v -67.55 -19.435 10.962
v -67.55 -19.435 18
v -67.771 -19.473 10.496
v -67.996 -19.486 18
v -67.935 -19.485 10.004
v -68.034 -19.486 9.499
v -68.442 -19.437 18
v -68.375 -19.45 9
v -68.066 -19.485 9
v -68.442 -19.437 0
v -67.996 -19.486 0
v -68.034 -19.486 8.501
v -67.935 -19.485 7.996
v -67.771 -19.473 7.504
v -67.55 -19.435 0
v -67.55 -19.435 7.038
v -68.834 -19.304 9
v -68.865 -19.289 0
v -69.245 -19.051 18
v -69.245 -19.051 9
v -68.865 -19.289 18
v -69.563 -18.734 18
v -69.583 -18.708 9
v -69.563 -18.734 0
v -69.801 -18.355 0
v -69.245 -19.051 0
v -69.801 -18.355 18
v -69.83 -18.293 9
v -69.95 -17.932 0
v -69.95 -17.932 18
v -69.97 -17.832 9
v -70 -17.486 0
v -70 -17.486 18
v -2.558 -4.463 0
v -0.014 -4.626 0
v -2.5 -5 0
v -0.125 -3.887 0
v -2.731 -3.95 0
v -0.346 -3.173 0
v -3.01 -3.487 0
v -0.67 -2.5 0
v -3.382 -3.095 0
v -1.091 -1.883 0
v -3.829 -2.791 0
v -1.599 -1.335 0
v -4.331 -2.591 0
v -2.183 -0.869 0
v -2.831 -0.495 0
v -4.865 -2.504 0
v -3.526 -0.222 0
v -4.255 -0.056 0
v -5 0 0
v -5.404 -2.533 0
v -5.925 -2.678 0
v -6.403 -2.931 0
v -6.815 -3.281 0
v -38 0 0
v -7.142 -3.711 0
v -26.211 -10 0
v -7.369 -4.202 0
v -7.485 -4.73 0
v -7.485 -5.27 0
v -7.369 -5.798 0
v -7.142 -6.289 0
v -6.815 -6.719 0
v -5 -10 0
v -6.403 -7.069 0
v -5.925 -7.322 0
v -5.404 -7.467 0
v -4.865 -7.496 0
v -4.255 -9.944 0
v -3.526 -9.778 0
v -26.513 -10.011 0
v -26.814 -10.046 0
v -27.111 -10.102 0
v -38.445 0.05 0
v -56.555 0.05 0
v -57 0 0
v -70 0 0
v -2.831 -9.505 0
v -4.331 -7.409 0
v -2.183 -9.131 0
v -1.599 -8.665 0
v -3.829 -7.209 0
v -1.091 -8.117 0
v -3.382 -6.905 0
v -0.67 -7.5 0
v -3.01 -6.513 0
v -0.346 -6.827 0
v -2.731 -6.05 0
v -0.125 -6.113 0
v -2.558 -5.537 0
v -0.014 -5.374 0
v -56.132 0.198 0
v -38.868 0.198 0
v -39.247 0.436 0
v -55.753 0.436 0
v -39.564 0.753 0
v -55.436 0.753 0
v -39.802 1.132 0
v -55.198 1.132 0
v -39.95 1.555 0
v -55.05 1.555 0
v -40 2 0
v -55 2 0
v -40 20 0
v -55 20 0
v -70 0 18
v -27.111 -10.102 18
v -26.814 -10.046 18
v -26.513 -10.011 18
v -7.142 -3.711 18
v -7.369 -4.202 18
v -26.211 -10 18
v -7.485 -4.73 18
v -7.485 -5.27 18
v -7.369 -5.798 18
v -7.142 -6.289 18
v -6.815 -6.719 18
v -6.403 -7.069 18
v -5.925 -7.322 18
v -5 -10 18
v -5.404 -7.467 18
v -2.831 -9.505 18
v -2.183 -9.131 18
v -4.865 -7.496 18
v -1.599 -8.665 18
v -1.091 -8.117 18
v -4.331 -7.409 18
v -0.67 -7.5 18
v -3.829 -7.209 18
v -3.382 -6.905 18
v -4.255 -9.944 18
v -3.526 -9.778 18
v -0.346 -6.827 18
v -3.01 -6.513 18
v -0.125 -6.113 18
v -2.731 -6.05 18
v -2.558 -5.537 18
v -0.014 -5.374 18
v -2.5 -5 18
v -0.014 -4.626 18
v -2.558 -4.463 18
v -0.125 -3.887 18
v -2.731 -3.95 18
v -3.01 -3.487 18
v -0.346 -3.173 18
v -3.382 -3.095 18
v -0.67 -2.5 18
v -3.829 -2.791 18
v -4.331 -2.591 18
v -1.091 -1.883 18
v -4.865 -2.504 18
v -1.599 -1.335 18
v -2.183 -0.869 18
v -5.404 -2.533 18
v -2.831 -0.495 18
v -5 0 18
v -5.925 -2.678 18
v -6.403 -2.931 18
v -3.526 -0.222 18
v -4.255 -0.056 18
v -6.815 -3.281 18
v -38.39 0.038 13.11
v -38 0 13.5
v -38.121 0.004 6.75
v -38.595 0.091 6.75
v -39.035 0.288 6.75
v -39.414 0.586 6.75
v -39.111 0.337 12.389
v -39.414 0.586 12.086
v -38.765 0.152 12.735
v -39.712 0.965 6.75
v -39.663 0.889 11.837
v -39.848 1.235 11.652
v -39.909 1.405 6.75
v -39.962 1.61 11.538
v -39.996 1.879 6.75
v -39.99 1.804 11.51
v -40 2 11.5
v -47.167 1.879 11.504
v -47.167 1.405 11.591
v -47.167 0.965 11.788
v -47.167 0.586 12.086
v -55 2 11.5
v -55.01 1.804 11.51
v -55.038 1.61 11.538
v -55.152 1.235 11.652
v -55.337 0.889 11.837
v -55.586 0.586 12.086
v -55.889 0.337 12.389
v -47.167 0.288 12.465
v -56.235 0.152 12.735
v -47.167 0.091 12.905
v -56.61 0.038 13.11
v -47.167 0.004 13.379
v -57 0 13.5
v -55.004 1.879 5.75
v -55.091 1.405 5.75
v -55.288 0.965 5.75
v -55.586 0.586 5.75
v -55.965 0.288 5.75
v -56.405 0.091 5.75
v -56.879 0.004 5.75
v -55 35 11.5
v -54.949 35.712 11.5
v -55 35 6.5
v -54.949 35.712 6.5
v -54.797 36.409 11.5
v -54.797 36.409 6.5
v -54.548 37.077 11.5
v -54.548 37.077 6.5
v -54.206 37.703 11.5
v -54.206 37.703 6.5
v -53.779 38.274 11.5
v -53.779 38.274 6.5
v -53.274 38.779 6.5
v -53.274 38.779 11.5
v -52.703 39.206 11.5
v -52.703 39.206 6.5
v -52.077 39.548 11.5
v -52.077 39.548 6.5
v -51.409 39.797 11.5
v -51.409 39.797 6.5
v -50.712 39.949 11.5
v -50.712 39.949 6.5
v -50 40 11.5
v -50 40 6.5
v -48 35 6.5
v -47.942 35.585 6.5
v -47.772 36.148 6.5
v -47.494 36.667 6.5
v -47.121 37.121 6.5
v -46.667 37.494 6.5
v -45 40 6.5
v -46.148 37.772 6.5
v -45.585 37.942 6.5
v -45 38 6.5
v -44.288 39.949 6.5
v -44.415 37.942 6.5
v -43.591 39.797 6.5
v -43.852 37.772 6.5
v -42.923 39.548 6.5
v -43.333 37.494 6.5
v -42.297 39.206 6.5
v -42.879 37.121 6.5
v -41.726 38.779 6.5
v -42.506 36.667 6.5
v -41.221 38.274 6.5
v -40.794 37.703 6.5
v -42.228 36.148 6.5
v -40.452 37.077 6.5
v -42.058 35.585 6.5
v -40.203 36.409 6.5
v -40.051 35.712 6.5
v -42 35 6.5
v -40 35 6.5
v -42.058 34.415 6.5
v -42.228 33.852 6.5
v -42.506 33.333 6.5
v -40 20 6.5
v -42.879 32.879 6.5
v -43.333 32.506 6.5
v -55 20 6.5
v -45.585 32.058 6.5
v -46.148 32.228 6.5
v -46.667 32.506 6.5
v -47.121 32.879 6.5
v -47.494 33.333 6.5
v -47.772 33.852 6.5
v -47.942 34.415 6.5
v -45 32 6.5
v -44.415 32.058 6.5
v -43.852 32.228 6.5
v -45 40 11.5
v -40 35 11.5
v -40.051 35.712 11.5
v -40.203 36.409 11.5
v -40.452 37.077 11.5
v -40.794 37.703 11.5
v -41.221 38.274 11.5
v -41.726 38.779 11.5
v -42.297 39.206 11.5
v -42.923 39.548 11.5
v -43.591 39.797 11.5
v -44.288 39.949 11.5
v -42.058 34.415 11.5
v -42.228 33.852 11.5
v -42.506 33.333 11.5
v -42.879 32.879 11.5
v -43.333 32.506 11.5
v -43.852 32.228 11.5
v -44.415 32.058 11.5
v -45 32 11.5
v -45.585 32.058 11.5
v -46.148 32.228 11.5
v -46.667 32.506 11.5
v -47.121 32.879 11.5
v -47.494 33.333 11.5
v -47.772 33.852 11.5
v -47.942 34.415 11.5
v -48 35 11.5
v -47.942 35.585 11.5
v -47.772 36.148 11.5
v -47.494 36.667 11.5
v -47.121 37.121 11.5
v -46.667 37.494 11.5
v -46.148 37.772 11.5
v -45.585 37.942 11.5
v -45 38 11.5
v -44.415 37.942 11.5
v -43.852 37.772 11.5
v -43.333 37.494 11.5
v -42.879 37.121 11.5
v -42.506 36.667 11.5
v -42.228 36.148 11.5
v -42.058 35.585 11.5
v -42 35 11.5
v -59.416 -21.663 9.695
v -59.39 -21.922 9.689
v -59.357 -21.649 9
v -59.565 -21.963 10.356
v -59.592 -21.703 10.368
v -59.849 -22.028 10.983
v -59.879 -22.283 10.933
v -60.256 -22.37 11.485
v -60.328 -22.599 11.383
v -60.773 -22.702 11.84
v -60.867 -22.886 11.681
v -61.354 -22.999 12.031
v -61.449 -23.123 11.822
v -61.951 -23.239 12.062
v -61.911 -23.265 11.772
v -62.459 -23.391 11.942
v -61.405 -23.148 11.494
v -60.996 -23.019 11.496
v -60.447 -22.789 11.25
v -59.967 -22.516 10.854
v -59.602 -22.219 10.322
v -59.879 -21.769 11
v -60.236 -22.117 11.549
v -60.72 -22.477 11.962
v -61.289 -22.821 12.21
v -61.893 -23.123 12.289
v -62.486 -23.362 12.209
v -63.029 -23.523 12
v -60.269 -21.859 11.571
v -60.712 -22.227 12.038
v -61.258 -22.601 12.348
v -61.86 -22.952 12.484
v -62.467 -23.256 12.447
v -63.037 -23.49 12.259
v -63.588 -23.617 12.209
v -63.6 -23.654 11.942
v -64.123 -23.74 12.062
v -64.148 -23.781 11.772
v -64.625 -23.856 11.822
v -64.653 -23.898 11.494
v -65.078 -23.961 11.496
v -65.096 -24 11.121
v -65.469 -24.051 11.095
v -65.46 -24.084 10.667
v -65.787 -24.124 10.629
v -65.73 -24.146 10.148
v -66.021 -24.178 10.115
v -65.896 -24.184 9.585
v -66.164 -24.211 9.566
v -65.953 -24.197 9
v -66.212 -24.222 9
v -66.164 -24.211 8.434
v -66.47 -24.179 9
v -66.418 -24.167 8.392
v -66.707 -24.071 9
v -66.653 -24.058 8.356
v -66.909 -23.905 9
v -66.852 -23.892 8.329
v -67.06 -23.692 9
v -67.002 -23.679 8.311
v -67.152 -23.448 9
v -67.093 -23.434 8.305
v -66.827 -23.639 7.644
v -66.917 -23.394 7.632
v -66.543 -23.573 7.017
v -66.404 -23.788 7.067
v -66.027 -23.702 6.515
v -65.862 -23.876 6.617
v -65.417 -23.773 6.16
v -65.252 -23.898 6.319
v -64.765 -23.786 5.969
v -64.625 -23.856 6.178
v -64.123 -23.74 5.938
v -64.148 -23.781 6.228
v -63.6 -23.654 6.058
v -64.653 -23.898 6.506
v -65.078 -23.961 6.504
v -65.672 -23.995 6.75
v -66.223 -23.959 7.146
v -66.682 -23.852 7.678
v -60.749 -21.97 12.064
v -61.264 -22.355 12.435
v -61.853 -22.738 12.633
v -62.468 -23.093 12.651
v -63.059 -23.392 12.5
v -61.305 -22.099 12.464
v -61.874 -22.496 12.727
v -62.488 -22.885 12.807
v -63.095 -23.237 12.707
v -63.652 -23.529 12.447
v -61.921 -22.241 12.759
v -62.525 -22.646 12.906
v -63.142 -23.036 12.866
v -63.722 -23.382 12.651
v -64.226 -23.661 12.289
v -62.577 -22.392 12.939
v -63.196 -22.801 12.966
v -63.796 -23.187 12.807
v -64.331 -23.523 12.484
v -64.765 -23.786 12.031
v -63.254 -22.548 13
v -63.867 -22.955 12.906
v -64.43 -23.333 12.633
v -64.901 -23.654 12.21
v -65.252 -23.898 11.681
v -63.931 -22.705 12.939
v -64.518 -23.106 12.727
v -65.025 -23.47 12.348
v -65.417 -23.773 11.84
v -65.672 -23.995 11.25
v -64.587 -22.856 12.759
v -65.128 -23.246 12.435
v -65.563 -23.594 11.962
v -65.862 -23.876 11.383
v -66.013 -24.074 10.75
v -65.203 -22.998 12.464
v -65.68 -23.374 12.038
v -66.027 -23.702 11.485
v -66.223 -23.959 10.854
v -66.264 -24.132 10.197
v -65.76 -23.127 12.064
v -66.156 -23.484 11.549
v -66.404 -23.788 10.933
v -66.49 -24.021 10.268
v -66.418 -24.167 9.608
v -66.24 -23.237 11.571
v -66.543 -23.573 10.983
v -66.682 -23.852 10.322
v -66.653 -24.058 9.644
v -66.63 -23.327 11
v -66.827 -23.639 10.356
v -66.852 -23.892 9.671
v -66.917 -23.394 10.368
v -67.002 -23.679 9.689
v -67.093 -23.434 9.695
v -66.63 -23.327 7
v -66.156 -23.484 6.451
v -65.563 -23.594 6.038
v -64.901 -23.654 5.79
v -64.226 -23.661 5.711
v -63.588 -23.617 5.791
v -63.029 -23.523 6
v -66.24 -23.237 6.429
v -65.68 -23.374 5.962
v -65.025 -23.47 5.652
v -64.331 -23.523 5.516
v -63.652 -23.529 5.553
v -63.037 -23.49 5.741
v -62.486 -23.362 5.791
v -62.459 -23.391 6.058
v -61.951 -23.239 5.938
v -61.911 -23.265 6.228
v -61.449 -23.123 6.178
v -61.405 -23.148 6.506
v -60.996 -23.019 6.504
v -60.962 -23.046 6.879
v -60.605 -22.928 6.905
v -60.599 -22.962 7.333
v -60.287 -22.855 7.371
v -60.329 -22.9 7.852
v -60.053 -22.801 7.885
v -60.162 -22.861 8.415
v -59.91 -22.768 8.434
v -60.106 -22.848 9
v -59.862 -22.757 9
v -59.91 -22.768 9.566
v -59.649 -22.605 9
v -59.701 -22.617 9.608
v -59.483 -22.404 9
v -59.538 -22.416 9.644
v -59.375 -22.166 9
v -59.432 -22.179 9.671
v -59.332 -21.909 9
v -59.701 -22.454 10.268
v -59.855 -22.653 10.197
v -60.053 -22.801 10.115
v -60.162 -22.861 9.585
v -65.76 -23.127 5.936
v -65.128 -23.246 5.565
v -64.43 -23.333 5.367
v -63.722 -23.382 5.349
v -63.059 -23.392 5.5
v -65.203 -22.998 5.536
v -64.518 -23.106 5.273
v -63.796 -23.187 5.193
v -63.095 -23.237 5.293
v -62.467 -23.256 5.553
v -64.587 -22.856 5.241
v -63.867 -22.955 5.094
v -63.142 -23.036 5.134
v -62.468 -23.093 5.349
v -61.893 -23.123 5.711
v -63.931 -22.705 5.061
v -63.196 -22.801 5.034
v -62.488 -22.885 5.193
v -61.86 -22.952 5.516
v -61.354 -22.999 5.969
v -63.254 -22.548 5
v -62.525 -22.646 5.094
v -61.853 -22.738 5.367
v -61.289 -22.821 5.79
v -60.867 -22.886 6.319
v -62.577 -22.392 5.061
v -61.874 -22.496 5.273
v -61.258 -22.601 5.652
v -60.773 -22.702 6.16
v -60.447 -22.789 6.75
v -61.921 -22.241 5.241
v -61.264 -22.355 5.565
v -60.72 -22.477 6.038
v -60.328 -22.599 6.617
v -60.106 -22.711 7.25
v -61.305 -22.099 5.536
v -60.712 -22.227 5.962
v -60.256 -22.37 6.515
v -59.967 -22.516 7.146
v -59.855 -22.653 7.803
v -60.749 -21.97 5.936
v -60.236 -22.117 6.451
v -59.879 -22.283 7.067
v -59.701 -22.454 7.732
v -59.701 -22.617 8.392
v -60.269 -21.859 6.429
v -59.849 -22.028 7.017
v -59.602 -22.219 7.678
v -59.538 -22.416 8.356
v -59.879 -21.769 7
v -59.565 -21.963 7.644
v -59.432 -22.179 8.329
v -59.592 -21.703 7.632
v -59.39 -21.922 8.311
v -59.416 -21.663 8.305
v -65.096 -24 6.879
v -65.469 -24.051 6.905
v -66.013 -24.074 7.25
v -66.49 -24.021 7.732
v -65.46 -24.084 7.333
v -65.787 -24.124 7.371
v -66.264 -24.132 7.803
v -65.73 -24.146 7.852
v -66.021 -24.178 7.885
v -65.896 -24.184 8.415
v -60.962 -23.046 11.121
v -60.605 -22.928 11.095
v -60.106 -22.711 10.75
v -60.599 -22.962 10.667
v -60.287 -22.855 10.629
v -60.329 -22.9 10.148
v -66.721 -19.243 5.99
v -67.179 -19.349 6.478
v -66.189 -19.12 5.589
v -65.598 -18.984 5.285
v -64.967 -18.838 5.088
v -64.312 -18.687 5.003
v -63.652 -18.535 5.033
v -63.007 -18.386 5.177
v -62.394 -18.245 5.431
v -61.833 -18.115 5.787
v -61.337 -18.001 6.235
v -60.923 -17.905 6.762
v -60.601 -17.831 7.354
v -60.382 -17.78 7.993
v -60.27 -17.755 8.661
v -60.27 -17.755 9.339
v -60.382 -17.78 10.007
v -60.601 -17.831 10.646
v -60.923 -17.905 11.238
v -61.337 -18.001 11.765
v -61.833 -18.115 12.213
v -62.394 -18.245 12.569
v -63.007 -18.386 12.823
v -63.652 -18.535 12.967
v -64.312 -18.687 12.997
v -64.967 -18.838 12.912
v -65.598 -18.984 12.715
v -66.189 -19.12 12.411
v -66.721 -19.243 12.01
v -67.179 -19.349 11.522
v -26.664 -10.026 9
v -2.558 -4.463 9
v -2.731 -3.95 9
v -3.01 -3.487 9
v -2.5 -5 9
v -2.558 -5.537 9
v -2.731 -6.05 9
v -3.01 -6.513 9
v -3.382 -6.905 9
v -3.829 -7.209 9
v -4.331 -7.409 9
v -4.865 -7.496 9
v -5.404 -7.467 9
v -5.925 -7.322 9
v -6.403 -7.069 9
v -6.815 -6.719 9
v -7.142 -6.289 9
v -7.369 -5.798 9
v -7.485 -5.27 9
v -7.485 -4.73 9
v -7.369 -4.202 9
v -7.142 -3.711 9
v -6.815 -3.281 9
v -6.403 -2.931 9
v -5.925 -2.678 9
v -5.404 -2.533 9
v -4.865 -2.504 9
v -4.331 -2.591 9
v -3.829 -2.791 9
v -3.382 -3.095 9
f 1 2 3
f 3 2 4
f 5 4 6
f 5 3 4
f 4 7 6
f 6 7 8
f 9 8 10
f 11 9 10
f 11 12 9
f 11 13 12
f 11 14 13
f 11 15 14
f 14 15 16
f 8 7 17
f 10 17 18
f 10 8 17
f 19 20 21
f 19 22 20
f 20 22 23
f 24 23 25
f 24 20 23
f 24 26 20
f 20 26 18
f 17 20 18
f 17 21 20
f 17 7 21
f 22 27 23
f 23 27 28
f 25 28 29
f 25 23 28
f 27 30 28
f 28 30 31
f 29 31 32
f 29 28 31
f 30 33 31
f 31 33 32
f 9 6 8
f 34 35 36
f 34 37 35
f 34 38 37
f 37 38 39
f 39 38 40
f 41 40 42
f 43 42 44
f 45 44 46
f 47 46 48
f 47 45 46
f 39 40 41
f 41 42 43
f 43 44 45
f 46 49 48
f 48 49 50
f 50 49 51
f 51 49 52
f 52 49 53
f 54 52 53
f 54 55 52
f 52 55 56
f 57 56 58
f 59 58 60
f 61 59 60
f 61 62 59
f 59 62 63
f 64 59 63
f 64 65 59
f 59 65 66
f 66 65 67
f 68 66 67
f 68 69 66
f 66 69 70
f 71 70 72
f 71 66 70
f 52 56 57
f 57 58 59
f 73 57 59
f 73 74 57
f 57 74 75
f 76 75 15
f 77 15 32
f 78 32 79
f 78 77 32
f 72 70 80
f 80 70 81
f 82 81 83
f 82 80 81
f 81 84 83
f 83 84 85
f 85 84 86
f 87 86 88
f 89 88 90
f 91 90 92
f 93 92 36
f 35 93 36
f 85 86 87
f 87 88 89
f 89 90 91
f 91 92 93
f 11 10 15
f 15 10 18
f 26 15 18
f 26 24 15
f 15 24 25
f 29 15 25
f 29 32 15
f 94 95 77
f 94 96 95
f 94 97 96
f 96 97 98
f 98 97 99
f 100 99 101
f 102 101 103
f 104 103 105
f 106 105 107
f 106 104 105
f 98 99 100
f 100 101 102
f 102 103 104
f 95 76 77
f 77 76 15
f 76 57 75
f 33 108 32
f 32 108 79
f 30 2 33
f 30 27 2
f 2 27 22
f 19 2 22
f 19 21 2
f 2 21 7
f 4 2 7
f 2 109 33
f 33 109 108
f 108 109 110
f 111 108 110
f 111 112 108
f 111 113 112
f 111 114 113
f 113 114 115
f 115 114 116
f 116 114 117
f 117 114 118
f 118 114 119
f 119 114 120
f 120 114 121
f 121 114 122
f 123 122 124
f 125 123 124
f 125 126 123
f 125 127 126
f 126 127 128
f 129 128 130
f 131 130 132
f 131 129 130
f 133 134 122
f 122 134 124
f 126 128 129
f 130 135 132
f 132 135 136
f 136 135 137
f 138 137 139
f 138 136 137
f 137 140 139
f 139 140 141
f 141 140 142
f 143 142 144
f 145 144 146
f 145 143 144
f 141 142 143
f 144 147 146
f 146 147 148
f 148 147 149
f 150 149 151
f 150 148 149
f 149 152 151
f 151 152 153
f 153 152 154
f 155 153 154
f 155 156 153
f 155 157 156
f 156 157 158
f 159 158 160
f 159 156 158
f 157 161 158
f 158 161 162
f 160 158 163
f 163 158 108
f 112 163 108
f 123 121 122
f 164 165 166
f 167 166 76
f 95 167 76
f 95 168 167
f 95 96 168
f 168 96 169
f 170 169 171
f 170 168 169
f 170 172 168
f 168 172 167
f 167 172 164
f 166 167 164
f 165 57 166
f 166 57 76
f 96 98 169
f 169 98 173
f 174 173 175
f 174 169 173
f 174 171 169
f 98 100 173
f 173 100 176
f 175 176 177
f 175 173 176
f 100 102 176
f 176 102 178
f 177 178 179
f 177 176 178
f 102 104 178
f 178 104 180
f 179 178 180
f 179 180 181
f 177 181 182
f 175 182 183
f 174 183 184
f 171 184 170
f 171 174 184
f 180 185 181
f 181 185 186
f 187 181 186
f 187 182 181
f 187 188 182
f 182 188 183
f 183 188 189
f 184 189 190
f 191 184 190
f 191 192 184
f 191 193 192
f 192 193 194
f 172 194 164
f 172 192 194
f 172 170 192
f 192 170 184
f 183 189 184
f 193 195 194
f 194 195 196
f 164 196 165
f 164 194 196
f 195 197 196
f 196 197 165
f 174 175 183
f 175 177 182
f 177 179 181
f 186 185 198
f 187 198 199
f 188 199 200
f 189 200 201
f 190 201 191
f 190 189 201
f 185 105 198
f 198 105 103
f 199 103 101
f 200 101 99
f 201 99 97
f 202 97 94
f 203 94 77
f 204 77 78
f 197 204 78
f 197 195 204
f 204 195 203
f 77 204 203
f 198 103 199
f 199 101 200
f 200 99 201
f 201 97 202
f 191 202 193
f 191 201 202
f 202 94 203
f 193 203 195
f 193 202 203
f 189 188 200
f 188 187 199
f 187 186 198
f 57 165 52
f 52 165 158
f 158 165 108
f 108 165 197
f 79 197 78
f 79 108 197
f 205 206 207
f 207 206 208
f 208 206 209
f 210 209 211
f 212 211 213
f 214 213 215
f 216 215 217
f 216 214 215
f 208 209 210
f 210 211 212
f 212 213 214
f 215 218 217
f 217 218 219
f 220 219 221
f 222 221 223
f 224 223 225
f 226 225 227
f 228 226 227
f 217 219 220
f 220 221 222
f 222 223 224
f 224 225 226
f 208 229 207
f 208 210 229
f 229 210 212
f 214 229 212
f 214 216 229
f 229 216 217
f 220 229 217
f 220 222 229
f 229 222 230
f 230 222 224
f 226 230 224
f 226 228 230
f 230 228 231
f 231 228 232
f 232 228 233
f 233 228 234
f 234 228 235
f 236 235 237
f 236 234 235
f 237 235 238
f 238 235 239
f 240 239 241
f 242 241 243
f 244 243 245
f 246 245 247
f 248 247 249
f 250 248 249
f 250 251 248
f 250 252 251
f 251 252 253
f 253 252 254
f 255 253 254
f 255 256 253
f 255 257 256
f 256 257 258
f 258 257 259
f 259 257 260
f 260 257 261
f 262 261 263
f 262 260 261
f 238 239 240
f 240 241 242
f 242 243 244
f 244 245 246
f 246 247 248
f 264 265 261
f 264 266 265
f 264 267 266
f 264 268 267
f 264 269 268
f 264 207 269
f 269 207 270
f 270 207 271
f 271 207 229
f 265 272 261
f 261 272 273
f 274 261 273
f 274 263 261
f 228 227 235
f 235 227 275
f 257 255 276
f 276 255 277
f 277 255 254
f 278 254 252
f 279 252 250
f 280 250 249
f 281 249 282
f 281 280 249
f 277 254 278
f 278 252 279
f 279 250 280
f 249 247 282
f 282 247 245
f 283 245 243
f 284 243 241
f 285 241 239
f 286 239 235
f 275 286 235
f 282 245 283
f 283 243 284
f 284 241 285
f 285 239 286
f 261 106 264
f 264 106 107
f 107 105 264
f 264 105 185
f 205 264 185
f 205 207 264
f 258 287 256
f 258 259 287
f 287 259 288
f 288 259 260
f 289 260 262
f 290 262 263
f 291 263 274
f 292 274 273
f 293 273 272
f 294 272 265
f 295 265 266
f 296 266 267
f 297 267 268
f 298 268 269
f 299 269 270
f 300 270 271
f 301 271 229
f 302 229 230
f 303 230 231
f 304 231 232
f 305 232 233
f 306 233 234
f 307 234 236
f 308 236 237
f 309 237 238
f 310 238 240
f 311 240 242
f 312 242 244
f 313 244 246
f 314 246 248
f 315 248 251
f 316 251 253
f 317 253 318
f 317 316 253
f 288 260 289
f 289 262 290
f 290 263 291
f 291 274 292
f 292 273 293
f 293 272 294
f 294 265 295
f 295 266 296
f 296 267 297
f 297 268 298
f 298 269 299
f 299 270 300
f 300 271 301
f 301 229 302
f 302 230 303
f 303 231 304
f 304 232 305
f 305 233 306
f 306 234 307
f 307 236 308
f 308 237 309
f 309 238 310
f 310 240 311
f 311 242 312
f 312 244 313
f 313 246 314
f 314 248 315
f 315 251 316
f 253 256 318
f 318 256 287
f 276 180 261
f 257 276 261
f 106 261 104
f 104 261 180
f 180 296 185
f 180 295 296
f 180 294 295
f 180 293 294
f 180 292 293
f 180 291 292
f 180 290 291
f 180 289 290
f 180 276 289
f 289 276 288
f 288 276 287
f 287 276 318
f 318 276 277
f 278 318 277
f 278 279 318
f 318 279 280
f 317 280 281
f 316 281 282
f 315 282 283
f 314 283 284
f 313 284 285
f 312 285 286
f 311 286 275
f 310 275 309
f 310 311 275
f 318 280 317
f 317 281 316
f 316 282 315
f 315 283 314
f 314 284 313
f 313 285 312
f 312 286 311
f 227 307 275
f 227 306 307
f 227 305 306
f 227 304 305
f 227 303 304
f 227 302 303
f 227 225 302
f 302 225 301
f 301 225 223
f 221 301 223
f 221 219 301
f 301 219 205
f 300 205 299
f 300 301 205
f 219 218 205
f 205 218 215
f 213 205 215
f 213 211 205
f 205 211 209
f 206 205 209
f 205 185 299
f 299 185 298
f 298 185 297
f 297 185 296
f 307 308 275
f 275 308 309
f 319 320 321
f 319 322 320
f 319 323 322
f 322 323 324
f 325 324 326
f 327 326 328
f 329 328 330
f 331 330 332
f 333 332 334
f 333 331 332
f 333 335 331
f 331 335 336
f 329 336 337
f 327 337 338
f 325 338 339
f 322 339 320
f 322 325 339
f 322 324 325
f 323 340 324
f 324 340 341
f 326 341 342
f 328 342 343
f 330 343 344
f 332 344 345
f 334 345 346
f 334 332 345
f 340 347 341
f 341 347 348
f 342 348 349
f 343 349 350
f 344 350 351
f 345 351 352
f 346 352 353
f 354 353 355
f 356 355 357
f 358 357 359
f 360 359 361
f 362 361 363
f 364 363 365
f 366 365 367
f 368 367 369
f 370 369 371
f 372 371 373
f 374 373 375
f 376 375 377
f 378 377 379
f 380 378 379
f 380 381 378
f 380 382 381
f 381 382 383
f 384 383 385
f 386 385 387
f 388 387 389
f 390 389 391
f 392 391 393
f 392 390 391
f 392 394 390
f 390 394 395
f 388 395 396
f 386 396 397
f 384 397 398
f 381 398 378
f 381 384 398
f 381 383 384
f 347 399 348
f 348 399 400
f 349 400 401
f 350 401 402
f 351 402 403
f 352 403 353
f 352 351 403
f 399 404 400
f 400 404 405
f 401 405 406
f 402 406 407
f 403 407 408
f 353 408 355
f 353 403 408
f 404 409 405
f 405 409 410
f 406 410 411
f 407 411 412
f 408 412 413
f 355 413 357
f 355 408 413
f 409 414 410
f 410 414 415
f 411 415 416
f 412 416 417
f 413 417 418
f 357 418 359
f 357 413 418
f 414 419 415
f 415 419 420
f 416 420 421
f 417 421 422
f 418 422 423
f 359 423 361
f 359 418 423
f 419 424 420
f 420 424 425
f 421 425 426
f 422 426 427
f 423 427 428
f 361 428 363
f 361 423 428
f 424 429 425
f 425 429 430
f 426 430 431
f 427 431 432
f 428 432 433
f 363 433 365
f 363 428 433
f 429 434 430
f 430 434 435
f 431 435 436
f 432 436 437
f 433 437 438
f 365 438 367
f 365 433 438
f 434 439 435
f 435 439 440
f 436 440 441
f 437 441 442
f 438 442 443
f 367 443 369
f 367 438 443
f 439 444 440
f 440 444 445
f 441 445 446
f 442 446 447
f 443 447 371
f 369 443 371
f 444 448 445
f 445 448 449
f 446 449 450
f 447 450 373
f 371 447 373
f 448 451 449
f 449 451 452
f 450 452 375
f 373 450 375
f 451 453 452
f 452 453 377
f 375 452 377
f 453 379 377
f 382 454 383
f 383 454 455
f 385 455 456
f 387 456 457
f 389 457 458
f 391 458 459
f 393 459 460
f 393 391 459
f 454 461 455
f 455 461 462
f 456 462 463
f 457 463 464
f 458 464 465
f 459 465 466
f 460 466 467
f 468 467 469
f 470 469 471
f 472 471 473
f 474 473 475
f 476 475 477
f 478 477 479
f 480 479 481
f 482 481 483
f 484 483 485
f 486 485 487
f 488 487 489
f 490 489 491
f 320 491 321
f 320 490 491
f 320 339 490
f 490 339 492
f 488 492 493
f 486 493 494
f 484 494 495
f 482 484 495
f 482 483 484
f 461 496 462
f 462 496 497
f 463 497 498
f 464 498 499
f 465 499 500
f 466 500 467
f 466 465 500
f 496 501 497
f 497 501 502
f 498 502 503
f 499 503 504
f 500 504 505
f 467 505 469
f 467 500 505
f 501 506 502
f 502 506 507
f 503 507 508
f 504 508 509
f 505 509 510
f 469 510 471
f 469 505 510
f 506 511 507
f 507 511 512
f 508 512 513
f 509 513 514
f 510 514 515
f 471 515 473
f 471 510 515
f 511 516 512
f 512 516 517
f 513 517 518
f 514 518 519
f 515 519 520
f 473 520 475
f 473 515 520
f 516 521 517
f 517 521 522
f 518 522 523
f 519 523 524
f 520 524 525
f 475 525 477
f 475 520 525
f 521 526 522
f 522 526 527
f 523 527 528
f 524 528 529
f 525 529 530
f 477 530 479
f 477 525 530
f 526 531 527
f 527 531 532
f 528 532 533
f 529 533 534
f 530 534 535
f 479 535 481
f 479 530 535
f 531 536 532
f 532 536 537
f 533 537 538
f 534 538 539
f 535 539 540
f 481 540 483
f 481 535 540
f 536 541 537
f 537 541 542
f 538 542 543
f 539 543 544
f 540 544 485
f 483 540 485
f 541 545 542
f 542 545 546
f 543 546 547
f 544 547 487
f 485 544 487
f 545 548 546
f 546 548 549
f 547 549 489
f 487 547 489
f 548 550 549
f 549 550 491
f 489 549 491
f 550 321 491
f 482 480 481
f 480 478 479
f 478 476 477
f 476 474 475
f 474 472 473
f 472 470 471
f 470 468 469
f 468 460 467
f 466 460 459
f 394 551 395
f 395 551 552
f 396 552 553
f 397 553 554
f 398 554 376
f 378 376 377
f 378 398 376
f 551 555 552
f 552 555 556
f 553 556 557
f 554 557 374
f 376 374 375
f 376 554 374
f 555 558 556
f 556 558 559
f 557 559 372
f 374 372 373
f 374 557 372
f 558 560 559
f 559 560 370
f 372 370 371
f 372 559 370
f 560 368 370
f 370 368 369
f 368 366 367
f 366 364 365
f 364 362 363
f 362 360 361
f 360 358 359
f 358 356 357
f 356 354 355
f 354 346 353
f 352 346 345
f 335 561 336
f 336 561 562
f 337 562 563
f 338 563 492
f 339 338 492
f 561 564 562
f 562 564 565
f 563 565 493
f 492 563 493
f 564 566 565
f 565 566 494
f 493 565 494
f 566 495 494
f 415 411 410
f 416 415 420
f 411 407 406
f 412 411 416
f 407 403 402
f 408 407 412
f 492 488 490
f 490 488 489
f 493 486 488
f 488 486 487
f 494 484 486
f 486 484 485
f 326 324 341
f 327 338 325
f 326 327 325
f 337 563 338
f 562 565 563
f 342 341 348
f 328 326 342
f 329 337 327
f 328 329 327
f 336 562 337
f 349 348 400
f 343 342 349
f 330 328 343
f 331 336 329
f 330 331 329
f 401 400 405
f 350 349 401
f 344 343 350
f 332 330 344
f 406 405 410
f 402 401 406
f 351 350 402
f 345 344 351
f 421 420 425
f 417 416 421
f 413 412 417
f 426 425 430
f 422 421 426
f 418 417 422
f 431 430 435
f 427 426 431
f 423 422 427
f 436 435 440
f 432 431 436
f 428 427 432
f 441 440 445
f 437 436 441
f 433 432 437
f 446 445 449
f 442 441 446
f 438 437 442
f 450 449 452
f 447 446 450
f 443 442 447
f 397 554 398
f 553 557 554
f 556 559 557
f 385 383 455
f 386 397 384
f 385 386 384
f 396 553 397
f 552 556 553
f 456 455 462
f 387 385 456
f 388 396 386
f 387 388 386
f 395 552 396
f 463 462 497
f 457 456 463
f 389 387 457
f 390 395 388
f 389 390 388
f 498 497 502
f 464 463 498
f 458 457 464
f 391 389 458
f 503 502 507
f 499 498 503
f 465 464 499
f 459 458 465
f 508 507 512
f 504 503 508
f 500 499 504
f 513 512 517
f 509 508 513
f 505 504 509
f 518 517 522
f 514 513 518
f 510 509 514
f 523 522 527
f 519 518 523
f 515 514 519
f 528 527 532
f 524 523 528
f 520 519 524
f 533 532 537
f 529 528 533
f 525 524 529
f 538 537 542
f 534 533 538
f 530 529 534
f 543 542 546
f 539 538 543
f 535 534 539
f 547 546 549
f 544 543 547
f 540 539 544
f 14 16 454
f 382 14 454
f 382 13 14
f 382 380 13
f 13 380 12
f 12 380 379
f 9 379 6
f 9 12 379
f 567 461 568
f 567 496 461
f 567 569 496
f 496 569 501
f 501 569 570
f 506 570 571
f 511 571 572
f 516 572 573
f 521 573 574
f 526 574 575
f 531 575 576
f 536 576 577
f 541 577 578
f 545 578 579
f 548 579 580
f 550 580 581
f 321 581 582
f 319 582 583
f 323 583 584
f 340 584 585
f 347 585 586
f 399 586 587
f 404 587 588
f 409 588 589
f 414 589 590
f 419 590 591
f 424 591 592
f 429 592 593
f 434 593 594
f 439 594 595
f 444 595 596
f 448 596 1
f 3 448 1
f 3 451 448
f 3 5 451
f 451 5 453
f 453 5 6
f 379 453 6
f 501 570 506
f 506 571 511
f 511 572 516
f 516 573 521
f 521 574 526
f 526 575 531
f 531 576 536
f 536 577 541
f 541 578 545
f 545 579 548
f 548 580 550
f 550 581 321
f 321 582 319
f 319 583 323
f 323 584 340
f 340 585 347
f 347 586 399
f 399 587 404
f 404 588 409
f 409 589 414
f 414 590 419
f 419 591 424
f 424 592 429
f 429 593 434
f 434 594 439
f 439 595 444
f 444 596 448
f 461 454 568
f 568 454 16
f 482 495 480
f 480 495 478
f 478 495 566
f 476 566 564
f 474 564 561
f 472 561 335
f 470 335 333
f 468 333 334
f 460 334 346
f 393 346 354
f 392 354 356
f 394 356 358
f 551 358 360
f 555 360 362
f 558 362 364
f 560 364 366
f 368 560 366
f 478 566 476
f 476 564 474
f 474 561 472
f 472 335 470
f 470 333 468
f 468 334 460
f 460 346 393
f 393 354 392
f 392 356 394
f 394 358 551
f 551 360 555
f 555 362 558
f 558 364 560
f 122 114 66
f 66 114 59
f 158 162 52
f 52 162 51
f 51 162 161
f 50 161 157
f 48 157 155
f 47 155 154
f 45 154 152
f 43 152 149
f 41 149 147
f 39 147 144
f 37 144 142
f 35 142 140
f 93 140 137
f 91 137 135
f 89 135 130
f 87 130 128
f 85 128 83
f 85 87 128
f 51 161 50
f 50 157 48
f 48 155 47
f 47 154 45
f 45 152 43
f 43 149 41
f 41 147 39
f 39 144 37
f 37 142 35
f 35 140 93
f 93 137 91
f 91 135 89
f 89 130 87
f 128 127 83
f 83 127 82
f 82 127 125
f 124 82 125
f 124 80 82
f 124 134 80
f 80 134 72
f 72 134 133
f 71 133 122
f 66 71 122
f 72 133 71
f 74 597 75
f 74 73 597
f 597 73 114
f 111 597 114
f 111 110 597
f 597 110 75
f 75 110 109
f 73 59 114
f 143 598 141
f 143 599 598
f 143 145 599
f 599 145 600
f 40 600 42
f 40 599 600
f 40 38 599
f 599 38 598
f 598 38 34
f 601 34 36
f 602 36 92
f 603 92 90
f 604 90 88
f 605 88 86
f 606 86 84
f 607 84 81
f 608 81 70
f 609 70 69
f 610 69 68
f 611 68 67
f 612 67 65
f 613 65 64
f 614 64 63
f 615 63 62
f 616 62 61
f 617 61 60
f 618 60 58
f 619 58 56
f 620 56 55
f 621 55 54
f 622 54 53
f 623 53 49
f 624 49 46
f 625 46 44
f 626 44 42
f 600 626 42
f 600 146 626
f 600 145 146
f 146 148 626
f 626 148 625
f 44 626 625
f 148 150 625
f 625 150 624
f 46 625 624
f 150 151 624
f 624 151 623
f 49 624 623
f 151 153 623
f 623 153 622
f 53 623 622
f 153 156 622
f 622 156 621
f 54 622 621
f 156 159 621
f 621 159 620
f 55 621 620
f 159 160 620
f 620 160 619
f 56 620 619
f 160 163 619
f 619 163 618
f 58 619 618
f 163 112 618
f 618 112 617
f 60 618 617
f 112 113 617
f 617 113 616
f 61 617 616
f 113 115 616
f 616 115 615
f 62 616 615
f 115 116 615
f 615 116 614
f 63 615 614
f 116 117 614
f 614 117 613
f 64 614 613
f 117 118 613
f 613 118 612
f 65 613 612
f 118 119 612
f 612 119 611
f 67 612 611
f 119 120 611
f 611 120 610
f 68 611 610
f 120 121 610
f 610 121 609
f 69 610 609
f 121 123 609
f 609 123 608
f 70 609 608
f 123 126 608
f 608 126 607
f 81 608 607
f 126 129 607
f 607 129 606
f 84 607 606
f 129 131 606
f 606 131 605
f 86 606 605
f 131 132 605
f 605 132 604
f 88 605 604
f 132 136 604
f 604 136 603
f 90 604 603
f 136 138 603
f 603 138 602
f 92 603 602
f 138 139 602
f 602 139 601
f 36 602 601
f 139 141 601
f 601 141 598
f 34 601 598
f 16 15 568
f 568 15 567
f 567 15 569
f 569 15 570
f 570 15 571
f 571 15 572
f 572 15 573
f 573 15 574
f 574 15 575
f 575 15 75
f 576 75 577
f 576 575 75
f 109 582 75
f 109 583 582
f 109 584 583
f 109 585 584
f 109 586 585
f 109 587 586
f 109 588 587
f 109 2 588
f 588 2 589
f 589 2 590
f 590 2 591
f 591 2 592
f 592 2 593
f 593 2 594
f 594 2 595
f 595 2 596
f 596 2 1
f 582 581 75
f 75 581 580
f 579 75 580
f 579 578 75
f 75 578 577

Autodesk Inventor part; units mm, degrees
ref_plane "YZ Plane" through (0, 0, 0) normal (1, 0, 0) x (0, 1, 0)
ref_plane "XZ Plane" through (0, 0, 0) normal (0, 1, 0) x (-1, 0, 0)
ref_plane "XY Plane" through (0, 0, 0) normal (0, 0, 1) x (1, 0, 0)
sketch "Sketch1" plane through (0, 0, 0) normal (0, 0, 1) x (1, 0, 0)
  line L0 (0, 0) -> (-70, 0)
  line L1 (0, 0) -> (0, -10)
  line L2 (0, -10) -> (-26.6667, -10)
  line L3 (-26.6667, -10) -> (-70, -20)
  line L4 (-70, -20) -> (-70, 0)
  circle A0 centre (-5, -5) radius 2.5
  dimension "d0" = 70
  dimension "d1" = 5
  dimension "d2" = 10
  dimension "d3" = 5
  dimension "d4" = 5
  dimension "d5" = 20
extrude "Extrusion1" add sketch "Sketch1" along normal blind 18
fillet "Fillet4" radius 4 1 edges at (-26.6667, -10, 9)
fillet "Fillet5" radius 5 2 edges at (0, 0, 9) (0, -10, 9)
sketch "Sketch4" plane through (-70, -20, 0) normal (0.2249, -0.9744, 0) x (0.9744, 0.2249, 0)
  circle A0 centre (6, 9) radius 4
  line L0 (44.0167, 18) -> (44.0167, 0) projected
  line L1 (0, 18) -> (44.0167, 18) projected
  line L2 (0, 0) -> (0, 18) projected
  line L3 (0, 0) -> (44.0167, 0) projected
  point P0 (72.7046, 0)
  dimension "d24" = 8
  dimension "d25" = 6
  dimension "d26" = 9
extrude "Extrusion4" add sketch "Sketch4" along normal blind 5 contours A0
fillet "Fillet6" radius 1 1 edges at (-66.9269, -24.4222, 9)
sketch "Sketch5" plane through (-70, 0, 0) normal (0, 1, 0) x (1, 0, 0)
  line L0 (15, 0) -> (30, 0)
  line L1 (30, 0) -> (30, -11.5)
  line L2 (30, -11.5) -> (15, -11.5)
  line L3 (15, -11.5) -> (15, 0)
  line L4 (65, -18) -> (0, -18) projected
  line L5 (0, 0) -> (0, -18) projected
  line L6 (65, 0) -> (0, 0) projected
  point P0 (70, 0)
  point P1 (0, -3.5)
  dimension "d31" = 15
  dimension "d33" = 6.5
  dimension "d34" = 15
extrude "Extrusion5" add sketch "Sketch5" along normal blind 40
sketch "Sketch6" plane through (-40, 0, 11.5) normal (0, 0, 1) x (1, 0, 0)
  circle A0 centre (-5, 35) radius 3
  line L0 (-15, 40) -> (0, 40) projected
  line L1 (0, 0) -> (0, 40) projected
  point P0 (40, 0)
  dimension "d37" = 6
  dimension "d38" = 5
  dimension "d39" = 5
extrude "Extrusion6" cut sketch "Sketch6" against normal up to next
sketch "Sketch7" plane through (-55, 0, 0) normal (-1, 0, 0) x (0, 0, 1)
  line L0 (0, 40) -> (6.5, 40)
  line L1 (0, 20) -> (0, 40)
  line L2 (6.5, 40) -> (6.5, 20)
  line L3 (6.5, 20) -> (0, 20)
  line L4 (0, 0) -> (0, 40) projected
  line L5 (11.5, 0) -> (11.5, 40) projected
  line L6 (0, 40) -> (11.5, 40) projected
  dimension "d42" = 5
  dimension "d44" = 20
extrude "Extrusion7" cut sketch "Sketch7" against normal up to next
fillet "Fillet8" radius 5 2 edges at (-40, 40, 9) (-55, 40, 9)
fillet "Fillet9" radius 2 3 edges at (-55, 0, 5.75) (-47.5, 0, 11.5) (-40, 0, 5.75)
fillet "Fillet10" radius 2 1 edges at (-70, -20, 9)
properties part number "Swinging_connection" material "Wood (Cherry)"
